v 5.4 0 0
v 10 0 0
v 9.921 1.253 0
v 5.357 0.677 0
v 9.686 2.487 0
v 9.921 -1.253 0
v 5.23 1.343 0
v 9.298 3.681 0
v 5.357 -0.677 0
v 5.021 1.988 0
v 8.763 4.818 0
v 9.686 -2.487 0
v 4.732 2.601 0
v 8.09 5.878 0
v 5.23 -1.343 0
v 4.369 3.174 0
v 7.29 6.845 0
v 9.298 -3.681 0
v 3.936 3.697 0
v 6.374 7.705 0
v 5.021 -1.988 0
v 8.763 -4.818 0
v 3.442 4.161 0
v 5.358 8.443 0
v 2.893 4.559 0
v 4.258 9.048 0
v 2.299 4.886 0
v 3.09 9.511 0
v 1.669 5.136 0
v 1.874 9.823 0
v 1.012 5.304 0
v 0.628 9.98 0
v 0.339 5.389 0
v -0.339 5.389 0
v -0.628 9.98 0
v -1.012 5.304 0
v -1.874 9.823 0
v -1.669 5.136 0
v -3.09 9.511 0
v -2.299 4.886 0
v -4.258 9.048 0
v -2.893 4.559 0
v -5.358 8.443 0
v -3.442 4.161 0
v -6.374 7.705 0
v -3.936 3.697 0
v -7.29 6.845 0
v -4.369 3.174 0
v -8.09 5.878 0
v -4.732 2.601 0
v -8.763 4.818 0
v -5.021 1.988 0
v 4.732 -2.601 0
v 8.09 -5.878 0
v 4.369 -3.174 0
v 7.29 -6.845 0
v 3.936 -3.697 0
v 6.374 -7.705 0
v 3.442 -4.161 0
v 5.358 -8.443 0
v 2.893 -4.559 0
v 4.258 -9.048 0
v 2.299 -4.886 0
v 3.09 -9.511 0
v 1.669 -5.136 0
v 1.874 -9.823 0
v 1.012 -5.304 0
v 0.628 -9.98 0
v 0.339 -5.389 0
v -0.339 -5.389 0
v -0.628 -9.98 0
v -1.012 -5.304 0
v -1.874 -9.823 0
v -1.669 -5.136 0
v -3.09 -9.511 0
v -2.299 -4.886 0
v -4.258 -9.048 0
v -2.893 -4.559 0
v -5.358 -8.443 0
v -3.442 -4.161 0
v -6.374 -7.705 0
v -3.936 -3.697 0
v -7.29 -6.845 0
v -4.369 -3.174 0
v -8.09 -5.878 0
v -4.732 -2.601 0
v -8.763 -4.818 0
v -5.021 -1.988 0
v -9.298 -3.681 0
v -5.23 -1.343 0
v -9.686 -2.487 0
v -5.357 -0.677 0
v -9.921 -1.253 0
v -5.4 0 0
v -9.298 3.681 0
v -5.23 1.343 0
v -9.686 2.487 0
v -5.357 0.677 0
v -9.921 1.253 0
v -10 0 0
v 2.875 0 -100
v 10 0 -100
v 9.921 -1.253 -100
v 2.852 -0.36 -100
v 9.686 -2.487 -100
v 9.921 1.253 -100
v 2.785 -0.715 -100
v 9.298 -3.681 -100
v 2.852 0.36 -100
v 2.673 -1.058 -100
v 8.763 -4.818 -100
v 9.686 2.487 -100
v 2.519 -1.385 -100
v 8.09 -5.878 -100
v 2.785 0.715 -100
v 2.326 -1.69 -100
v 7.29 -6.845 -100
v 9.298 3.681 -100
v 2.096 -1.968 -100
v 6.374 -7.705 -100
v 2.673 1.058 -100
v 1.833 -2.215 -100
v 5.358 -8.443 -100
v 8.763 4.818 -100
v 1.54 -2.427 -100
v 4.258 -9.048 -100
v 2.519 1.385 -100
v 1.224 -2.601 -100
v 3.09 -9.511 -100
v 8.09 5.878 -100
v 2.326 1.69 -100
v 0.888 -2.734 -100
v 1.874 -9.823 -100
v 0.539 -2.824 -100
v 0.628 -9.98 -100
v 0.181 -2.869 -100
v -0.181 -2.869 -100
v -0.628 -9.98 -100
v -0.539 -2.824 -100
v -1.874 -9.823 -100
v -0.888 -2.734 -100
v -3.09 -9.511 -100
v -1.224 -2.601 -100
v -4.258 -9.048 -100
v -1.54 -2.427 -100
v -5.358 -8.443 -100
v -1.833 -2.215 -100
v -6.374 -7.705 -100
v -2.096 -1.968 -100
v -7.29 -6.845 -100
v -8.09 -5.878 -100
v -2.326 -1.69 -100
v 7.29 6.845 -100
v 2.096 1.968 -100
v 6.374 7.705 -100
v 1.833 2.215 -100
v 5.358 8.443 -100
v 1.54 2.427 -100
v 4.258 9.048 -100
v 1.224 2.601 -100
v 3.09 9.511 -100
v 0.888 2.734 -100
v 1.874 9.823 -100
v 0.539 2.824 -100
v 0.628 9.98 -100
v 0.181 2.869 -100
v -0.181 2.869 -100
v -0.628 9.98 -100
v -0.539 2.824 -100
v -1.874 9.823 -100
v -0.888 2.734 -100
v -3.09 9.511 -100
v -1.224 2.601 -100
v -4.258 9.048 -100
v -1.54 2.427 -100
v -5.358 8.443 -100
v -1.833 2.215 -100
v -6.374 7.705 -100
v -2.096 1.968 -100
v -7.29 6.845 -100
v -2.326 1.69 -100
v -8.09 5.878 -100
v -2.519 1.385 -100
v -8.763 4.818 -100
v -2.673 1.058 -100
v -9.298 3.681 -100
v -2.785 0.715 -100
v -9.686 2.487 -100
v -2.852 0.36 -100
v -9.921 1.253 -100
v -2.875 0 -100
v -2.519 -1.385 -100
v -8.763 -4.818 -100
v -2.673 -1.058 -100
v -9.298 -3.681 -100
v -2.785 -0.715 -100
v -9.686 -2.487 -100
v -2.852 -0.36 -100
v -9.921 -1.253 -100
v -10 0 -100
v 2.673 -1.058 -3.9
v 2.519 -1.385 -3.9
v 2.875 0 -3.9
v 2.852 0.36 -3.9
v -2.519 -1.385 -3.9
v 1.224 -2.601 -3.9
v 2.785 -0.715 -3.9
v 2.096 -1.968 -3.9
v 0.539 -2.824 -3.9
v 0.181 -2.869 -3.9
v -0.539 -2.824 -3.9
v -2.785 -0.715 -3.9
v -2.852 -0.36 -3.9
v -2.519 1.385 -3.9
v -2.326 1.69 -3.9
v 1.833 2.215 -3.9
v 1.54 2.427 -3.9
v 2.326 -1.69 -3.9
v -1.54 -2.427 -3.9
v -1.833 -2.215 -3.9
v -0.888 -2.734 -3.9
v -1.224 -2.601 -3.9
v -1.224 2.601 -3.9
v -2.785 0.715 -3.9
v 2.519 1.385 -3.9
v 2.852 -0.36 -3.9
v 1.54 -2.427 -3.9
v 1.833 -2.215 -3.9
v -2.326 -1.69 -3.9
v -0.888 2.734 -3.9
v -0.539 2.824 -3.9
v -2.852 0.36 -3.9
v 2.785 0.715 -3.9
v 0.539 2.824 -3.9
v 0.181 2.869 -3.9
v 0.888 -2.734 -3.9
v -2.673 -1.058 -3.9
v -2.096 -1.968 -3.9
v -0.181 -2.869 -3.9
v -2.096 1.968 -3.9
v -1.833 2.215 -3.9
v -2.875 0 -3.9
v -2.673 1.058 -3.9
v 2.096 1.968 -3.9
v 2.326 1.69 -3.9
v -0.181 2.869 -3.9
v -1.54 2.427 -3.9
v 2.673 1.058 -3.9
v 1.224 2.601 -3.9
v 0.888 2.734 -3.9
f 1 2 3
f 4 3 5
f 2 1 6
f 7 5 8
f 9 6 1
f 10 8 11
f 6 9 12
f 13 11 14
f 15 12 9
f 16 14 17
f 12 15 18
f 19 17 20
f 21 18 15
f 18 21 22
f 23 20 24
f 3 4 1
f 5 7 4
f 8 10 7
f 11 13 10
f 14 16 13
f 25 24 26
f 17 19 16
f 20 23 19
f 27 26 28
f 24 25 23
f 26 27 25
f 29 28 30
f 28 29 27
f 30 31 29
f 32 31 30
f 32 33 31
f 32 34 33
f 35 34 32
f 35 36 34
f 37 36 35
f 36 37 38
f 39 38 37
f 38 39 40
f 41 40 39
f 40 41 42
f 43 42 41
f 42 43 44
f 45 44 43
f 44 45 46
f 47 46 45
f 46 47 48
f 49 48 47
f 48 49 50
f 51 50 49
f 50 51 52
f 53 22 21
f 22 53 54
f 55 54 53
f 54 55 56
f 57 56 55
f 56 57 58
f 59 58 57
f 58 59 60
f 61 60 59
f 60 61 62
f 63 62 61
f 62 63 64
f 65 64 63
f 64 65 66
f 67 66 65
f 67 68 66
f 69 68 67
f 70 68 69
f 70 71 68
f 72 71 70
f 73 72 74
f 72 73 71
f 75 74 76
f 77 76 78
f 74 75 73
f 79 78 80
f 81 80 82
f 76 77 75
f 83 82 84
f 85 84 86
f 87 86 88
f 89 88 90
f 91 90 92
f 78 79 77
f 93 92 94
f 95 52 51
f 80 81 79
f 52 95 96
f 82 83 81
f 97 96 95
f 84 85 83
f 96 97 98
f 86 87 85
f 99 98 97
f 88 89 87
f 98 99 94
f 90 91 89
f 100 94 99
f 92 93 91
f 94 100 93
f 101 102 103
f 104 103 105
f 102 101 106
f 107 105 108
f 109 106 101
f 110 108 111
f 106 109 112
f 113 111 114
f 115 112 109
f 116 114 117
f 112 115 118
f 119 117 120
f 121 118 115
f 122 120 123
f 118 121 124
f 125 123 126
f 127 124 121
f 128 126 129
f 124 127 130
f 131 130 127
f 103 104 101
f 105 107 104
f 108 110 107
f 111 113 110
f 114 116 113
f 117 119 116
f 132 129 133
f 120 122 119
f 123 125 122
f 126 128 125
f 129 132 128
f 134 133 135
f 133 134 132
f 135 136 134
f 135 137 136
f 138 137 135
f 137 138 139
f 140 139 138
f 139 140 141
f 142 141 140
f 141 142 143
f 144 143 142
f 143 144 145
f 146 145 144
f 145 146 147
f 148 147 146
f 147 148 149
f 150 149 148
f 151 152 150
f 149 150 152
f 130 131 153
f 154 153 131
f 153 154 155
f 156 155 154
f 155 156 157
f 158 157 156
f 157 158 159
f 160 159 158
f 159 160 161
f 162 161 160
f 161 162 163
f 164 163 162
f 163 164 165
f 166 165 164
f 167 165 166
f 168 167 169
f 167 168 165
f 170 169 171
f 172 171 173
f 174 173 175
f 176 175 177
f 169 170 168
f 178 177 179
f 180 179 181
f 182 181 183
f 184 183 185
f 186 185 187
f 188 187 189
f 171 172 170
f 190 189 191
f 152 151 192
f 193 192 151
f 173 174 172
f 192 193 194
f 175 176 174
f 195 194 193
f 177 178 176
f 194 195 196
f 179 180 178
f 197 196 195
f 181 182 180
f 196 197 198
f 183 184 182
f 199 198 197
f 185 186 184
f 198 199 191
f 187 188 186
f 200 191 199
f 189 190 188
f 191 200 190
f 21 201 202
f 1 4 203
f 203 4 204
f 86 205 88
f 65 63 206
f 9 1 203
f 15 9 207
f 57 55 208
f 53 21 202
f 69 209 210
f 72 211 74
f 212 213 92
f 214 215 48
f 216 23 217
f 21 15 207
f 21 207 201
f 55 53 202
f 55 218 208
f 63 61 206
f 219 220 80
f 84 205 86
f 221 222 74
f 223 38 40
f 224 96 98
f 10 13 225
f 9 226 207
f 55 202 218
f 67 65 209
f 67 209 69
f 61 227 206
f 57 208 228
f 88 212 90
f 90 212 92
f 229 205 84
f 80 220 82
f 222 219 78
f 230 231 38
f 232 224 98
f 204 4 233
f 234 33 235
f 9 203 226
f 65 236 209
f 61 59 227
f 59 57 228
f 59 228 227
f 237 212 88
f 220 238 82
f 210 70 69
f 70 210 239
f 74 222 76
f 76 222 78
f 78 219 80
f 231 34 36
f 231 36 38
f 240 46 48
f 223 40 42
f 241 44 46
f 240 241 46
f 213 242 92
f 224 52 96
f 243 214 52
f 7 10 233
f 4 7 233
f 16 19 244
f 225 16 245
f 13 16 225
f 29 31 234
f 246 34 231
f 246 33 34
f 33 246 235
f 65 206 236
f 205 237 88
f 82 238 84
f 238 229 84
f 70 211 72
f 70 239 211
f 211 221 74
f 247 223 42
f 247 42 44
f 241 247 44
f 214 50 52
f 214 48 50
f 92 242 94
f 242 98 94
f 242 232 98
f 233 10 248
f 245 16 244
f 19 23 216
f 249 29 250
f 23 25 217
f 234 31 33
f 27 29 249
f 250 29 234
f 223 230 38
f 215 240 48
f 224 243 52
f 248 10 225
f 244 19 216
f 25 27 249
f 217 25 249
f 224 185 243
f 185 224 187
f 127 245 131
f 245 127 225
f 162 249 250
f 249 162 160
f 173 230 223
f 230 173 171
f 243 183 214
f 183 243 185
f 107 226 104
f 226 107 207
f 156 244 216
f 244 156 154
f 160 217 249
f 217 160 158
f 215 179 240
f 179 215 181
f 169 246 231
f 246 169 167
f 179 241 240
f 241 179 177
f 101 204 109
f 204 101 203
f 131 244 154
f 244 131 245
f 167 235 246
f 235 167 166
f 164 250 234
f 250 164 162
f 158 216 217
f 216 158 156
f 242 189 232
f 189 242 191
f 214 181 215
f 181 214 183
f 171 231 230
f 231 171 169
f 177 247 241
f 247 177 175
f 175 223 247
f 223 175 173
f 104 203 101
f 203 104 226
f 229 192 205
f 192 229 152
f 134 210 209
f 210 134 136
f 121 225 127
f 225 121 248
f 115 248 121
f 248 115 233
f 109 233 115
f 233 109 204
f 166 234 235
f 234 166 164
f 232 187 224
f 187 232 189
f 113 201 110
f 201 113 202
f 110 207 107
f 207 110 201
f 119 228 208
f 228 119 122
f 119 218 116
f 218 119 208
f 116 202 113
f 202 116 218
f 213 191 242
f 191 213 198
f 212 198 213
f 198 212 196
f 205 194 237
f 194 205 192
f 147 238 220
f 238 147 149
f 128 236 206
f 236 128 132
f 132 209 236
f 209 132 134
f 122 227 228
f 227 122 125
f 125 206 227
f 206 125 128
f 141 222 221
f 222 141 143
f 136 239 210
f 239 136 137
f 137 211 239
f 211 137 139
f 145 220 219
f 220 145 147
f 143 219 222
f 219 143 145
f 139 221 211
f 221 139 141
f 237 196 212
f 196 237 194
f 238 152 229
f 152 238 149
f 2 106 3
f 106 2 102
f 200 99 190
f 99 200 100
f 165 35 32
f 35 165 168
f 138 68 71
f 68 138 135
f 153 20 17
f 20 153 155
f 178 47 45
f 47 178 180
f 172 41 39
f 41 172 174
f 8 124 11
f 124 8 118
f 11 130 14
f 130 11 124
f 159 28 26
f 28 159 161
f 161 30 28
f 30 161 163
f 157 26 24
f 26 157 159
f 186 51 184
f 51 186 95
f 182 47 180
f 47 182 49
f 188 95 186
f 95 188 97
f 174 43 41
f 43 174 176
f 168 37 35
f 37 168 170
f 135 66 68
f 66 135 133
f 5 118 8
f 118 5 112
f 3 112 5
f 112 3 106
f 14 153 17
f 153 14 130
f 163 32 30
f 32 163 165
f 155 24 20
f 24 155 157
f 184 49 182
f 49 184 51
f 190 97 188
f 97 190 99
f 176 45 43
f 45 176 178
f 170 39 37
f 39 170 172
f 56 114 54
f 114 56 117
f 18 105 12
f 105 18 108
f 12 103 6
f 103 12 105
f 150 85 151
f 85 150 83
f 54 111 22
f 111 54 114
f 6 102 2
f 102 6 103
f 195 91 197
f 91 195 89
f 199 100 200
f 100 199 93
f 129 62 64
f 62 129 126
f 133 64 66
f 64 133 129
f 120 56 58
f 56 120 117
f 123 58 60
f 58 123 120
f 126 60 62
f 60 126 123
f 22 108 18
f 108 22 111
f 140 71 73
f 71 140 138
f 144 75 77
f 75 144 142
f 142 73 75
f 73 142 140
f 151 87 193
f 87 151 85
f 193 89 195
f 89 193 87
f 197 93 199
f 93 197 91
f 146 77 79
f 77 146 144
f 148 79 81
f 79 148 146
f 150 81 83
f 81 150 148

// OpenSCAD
$fn = 50;


difference() {
	union() {
		translate(v = [0, 0, -100.0000000000]) {
			cylinder(h = 100, r = 10.0000000000);
		}
	}
	union() {
		translate(v = [0, 0, 0]) {
			rotate(a = [0, 0, 0]) {
				difference() {
					union() {
						#translate(v = [0, 0, -100.0000000000]) {
							cylinder(h = 100, r = 2.6000000000);
						}
						#translate(v = [0, 0, -3.9000000000]) {
							cylinder(h = 3.9000000000, r1 = 2.8750000000, r2 = 5.4000000000);
						}
						#translate(v = [0, 0, -100.0000000000]) {
							cylinder(h = 100, r = 2.8750000000);
						}
						#translate(v = [0, 0, -100.0000000000]) {
							cylinder(h = 100, r = 2.6000000000);
						}
					}
					union();
				}
			}
		}
	}
}
